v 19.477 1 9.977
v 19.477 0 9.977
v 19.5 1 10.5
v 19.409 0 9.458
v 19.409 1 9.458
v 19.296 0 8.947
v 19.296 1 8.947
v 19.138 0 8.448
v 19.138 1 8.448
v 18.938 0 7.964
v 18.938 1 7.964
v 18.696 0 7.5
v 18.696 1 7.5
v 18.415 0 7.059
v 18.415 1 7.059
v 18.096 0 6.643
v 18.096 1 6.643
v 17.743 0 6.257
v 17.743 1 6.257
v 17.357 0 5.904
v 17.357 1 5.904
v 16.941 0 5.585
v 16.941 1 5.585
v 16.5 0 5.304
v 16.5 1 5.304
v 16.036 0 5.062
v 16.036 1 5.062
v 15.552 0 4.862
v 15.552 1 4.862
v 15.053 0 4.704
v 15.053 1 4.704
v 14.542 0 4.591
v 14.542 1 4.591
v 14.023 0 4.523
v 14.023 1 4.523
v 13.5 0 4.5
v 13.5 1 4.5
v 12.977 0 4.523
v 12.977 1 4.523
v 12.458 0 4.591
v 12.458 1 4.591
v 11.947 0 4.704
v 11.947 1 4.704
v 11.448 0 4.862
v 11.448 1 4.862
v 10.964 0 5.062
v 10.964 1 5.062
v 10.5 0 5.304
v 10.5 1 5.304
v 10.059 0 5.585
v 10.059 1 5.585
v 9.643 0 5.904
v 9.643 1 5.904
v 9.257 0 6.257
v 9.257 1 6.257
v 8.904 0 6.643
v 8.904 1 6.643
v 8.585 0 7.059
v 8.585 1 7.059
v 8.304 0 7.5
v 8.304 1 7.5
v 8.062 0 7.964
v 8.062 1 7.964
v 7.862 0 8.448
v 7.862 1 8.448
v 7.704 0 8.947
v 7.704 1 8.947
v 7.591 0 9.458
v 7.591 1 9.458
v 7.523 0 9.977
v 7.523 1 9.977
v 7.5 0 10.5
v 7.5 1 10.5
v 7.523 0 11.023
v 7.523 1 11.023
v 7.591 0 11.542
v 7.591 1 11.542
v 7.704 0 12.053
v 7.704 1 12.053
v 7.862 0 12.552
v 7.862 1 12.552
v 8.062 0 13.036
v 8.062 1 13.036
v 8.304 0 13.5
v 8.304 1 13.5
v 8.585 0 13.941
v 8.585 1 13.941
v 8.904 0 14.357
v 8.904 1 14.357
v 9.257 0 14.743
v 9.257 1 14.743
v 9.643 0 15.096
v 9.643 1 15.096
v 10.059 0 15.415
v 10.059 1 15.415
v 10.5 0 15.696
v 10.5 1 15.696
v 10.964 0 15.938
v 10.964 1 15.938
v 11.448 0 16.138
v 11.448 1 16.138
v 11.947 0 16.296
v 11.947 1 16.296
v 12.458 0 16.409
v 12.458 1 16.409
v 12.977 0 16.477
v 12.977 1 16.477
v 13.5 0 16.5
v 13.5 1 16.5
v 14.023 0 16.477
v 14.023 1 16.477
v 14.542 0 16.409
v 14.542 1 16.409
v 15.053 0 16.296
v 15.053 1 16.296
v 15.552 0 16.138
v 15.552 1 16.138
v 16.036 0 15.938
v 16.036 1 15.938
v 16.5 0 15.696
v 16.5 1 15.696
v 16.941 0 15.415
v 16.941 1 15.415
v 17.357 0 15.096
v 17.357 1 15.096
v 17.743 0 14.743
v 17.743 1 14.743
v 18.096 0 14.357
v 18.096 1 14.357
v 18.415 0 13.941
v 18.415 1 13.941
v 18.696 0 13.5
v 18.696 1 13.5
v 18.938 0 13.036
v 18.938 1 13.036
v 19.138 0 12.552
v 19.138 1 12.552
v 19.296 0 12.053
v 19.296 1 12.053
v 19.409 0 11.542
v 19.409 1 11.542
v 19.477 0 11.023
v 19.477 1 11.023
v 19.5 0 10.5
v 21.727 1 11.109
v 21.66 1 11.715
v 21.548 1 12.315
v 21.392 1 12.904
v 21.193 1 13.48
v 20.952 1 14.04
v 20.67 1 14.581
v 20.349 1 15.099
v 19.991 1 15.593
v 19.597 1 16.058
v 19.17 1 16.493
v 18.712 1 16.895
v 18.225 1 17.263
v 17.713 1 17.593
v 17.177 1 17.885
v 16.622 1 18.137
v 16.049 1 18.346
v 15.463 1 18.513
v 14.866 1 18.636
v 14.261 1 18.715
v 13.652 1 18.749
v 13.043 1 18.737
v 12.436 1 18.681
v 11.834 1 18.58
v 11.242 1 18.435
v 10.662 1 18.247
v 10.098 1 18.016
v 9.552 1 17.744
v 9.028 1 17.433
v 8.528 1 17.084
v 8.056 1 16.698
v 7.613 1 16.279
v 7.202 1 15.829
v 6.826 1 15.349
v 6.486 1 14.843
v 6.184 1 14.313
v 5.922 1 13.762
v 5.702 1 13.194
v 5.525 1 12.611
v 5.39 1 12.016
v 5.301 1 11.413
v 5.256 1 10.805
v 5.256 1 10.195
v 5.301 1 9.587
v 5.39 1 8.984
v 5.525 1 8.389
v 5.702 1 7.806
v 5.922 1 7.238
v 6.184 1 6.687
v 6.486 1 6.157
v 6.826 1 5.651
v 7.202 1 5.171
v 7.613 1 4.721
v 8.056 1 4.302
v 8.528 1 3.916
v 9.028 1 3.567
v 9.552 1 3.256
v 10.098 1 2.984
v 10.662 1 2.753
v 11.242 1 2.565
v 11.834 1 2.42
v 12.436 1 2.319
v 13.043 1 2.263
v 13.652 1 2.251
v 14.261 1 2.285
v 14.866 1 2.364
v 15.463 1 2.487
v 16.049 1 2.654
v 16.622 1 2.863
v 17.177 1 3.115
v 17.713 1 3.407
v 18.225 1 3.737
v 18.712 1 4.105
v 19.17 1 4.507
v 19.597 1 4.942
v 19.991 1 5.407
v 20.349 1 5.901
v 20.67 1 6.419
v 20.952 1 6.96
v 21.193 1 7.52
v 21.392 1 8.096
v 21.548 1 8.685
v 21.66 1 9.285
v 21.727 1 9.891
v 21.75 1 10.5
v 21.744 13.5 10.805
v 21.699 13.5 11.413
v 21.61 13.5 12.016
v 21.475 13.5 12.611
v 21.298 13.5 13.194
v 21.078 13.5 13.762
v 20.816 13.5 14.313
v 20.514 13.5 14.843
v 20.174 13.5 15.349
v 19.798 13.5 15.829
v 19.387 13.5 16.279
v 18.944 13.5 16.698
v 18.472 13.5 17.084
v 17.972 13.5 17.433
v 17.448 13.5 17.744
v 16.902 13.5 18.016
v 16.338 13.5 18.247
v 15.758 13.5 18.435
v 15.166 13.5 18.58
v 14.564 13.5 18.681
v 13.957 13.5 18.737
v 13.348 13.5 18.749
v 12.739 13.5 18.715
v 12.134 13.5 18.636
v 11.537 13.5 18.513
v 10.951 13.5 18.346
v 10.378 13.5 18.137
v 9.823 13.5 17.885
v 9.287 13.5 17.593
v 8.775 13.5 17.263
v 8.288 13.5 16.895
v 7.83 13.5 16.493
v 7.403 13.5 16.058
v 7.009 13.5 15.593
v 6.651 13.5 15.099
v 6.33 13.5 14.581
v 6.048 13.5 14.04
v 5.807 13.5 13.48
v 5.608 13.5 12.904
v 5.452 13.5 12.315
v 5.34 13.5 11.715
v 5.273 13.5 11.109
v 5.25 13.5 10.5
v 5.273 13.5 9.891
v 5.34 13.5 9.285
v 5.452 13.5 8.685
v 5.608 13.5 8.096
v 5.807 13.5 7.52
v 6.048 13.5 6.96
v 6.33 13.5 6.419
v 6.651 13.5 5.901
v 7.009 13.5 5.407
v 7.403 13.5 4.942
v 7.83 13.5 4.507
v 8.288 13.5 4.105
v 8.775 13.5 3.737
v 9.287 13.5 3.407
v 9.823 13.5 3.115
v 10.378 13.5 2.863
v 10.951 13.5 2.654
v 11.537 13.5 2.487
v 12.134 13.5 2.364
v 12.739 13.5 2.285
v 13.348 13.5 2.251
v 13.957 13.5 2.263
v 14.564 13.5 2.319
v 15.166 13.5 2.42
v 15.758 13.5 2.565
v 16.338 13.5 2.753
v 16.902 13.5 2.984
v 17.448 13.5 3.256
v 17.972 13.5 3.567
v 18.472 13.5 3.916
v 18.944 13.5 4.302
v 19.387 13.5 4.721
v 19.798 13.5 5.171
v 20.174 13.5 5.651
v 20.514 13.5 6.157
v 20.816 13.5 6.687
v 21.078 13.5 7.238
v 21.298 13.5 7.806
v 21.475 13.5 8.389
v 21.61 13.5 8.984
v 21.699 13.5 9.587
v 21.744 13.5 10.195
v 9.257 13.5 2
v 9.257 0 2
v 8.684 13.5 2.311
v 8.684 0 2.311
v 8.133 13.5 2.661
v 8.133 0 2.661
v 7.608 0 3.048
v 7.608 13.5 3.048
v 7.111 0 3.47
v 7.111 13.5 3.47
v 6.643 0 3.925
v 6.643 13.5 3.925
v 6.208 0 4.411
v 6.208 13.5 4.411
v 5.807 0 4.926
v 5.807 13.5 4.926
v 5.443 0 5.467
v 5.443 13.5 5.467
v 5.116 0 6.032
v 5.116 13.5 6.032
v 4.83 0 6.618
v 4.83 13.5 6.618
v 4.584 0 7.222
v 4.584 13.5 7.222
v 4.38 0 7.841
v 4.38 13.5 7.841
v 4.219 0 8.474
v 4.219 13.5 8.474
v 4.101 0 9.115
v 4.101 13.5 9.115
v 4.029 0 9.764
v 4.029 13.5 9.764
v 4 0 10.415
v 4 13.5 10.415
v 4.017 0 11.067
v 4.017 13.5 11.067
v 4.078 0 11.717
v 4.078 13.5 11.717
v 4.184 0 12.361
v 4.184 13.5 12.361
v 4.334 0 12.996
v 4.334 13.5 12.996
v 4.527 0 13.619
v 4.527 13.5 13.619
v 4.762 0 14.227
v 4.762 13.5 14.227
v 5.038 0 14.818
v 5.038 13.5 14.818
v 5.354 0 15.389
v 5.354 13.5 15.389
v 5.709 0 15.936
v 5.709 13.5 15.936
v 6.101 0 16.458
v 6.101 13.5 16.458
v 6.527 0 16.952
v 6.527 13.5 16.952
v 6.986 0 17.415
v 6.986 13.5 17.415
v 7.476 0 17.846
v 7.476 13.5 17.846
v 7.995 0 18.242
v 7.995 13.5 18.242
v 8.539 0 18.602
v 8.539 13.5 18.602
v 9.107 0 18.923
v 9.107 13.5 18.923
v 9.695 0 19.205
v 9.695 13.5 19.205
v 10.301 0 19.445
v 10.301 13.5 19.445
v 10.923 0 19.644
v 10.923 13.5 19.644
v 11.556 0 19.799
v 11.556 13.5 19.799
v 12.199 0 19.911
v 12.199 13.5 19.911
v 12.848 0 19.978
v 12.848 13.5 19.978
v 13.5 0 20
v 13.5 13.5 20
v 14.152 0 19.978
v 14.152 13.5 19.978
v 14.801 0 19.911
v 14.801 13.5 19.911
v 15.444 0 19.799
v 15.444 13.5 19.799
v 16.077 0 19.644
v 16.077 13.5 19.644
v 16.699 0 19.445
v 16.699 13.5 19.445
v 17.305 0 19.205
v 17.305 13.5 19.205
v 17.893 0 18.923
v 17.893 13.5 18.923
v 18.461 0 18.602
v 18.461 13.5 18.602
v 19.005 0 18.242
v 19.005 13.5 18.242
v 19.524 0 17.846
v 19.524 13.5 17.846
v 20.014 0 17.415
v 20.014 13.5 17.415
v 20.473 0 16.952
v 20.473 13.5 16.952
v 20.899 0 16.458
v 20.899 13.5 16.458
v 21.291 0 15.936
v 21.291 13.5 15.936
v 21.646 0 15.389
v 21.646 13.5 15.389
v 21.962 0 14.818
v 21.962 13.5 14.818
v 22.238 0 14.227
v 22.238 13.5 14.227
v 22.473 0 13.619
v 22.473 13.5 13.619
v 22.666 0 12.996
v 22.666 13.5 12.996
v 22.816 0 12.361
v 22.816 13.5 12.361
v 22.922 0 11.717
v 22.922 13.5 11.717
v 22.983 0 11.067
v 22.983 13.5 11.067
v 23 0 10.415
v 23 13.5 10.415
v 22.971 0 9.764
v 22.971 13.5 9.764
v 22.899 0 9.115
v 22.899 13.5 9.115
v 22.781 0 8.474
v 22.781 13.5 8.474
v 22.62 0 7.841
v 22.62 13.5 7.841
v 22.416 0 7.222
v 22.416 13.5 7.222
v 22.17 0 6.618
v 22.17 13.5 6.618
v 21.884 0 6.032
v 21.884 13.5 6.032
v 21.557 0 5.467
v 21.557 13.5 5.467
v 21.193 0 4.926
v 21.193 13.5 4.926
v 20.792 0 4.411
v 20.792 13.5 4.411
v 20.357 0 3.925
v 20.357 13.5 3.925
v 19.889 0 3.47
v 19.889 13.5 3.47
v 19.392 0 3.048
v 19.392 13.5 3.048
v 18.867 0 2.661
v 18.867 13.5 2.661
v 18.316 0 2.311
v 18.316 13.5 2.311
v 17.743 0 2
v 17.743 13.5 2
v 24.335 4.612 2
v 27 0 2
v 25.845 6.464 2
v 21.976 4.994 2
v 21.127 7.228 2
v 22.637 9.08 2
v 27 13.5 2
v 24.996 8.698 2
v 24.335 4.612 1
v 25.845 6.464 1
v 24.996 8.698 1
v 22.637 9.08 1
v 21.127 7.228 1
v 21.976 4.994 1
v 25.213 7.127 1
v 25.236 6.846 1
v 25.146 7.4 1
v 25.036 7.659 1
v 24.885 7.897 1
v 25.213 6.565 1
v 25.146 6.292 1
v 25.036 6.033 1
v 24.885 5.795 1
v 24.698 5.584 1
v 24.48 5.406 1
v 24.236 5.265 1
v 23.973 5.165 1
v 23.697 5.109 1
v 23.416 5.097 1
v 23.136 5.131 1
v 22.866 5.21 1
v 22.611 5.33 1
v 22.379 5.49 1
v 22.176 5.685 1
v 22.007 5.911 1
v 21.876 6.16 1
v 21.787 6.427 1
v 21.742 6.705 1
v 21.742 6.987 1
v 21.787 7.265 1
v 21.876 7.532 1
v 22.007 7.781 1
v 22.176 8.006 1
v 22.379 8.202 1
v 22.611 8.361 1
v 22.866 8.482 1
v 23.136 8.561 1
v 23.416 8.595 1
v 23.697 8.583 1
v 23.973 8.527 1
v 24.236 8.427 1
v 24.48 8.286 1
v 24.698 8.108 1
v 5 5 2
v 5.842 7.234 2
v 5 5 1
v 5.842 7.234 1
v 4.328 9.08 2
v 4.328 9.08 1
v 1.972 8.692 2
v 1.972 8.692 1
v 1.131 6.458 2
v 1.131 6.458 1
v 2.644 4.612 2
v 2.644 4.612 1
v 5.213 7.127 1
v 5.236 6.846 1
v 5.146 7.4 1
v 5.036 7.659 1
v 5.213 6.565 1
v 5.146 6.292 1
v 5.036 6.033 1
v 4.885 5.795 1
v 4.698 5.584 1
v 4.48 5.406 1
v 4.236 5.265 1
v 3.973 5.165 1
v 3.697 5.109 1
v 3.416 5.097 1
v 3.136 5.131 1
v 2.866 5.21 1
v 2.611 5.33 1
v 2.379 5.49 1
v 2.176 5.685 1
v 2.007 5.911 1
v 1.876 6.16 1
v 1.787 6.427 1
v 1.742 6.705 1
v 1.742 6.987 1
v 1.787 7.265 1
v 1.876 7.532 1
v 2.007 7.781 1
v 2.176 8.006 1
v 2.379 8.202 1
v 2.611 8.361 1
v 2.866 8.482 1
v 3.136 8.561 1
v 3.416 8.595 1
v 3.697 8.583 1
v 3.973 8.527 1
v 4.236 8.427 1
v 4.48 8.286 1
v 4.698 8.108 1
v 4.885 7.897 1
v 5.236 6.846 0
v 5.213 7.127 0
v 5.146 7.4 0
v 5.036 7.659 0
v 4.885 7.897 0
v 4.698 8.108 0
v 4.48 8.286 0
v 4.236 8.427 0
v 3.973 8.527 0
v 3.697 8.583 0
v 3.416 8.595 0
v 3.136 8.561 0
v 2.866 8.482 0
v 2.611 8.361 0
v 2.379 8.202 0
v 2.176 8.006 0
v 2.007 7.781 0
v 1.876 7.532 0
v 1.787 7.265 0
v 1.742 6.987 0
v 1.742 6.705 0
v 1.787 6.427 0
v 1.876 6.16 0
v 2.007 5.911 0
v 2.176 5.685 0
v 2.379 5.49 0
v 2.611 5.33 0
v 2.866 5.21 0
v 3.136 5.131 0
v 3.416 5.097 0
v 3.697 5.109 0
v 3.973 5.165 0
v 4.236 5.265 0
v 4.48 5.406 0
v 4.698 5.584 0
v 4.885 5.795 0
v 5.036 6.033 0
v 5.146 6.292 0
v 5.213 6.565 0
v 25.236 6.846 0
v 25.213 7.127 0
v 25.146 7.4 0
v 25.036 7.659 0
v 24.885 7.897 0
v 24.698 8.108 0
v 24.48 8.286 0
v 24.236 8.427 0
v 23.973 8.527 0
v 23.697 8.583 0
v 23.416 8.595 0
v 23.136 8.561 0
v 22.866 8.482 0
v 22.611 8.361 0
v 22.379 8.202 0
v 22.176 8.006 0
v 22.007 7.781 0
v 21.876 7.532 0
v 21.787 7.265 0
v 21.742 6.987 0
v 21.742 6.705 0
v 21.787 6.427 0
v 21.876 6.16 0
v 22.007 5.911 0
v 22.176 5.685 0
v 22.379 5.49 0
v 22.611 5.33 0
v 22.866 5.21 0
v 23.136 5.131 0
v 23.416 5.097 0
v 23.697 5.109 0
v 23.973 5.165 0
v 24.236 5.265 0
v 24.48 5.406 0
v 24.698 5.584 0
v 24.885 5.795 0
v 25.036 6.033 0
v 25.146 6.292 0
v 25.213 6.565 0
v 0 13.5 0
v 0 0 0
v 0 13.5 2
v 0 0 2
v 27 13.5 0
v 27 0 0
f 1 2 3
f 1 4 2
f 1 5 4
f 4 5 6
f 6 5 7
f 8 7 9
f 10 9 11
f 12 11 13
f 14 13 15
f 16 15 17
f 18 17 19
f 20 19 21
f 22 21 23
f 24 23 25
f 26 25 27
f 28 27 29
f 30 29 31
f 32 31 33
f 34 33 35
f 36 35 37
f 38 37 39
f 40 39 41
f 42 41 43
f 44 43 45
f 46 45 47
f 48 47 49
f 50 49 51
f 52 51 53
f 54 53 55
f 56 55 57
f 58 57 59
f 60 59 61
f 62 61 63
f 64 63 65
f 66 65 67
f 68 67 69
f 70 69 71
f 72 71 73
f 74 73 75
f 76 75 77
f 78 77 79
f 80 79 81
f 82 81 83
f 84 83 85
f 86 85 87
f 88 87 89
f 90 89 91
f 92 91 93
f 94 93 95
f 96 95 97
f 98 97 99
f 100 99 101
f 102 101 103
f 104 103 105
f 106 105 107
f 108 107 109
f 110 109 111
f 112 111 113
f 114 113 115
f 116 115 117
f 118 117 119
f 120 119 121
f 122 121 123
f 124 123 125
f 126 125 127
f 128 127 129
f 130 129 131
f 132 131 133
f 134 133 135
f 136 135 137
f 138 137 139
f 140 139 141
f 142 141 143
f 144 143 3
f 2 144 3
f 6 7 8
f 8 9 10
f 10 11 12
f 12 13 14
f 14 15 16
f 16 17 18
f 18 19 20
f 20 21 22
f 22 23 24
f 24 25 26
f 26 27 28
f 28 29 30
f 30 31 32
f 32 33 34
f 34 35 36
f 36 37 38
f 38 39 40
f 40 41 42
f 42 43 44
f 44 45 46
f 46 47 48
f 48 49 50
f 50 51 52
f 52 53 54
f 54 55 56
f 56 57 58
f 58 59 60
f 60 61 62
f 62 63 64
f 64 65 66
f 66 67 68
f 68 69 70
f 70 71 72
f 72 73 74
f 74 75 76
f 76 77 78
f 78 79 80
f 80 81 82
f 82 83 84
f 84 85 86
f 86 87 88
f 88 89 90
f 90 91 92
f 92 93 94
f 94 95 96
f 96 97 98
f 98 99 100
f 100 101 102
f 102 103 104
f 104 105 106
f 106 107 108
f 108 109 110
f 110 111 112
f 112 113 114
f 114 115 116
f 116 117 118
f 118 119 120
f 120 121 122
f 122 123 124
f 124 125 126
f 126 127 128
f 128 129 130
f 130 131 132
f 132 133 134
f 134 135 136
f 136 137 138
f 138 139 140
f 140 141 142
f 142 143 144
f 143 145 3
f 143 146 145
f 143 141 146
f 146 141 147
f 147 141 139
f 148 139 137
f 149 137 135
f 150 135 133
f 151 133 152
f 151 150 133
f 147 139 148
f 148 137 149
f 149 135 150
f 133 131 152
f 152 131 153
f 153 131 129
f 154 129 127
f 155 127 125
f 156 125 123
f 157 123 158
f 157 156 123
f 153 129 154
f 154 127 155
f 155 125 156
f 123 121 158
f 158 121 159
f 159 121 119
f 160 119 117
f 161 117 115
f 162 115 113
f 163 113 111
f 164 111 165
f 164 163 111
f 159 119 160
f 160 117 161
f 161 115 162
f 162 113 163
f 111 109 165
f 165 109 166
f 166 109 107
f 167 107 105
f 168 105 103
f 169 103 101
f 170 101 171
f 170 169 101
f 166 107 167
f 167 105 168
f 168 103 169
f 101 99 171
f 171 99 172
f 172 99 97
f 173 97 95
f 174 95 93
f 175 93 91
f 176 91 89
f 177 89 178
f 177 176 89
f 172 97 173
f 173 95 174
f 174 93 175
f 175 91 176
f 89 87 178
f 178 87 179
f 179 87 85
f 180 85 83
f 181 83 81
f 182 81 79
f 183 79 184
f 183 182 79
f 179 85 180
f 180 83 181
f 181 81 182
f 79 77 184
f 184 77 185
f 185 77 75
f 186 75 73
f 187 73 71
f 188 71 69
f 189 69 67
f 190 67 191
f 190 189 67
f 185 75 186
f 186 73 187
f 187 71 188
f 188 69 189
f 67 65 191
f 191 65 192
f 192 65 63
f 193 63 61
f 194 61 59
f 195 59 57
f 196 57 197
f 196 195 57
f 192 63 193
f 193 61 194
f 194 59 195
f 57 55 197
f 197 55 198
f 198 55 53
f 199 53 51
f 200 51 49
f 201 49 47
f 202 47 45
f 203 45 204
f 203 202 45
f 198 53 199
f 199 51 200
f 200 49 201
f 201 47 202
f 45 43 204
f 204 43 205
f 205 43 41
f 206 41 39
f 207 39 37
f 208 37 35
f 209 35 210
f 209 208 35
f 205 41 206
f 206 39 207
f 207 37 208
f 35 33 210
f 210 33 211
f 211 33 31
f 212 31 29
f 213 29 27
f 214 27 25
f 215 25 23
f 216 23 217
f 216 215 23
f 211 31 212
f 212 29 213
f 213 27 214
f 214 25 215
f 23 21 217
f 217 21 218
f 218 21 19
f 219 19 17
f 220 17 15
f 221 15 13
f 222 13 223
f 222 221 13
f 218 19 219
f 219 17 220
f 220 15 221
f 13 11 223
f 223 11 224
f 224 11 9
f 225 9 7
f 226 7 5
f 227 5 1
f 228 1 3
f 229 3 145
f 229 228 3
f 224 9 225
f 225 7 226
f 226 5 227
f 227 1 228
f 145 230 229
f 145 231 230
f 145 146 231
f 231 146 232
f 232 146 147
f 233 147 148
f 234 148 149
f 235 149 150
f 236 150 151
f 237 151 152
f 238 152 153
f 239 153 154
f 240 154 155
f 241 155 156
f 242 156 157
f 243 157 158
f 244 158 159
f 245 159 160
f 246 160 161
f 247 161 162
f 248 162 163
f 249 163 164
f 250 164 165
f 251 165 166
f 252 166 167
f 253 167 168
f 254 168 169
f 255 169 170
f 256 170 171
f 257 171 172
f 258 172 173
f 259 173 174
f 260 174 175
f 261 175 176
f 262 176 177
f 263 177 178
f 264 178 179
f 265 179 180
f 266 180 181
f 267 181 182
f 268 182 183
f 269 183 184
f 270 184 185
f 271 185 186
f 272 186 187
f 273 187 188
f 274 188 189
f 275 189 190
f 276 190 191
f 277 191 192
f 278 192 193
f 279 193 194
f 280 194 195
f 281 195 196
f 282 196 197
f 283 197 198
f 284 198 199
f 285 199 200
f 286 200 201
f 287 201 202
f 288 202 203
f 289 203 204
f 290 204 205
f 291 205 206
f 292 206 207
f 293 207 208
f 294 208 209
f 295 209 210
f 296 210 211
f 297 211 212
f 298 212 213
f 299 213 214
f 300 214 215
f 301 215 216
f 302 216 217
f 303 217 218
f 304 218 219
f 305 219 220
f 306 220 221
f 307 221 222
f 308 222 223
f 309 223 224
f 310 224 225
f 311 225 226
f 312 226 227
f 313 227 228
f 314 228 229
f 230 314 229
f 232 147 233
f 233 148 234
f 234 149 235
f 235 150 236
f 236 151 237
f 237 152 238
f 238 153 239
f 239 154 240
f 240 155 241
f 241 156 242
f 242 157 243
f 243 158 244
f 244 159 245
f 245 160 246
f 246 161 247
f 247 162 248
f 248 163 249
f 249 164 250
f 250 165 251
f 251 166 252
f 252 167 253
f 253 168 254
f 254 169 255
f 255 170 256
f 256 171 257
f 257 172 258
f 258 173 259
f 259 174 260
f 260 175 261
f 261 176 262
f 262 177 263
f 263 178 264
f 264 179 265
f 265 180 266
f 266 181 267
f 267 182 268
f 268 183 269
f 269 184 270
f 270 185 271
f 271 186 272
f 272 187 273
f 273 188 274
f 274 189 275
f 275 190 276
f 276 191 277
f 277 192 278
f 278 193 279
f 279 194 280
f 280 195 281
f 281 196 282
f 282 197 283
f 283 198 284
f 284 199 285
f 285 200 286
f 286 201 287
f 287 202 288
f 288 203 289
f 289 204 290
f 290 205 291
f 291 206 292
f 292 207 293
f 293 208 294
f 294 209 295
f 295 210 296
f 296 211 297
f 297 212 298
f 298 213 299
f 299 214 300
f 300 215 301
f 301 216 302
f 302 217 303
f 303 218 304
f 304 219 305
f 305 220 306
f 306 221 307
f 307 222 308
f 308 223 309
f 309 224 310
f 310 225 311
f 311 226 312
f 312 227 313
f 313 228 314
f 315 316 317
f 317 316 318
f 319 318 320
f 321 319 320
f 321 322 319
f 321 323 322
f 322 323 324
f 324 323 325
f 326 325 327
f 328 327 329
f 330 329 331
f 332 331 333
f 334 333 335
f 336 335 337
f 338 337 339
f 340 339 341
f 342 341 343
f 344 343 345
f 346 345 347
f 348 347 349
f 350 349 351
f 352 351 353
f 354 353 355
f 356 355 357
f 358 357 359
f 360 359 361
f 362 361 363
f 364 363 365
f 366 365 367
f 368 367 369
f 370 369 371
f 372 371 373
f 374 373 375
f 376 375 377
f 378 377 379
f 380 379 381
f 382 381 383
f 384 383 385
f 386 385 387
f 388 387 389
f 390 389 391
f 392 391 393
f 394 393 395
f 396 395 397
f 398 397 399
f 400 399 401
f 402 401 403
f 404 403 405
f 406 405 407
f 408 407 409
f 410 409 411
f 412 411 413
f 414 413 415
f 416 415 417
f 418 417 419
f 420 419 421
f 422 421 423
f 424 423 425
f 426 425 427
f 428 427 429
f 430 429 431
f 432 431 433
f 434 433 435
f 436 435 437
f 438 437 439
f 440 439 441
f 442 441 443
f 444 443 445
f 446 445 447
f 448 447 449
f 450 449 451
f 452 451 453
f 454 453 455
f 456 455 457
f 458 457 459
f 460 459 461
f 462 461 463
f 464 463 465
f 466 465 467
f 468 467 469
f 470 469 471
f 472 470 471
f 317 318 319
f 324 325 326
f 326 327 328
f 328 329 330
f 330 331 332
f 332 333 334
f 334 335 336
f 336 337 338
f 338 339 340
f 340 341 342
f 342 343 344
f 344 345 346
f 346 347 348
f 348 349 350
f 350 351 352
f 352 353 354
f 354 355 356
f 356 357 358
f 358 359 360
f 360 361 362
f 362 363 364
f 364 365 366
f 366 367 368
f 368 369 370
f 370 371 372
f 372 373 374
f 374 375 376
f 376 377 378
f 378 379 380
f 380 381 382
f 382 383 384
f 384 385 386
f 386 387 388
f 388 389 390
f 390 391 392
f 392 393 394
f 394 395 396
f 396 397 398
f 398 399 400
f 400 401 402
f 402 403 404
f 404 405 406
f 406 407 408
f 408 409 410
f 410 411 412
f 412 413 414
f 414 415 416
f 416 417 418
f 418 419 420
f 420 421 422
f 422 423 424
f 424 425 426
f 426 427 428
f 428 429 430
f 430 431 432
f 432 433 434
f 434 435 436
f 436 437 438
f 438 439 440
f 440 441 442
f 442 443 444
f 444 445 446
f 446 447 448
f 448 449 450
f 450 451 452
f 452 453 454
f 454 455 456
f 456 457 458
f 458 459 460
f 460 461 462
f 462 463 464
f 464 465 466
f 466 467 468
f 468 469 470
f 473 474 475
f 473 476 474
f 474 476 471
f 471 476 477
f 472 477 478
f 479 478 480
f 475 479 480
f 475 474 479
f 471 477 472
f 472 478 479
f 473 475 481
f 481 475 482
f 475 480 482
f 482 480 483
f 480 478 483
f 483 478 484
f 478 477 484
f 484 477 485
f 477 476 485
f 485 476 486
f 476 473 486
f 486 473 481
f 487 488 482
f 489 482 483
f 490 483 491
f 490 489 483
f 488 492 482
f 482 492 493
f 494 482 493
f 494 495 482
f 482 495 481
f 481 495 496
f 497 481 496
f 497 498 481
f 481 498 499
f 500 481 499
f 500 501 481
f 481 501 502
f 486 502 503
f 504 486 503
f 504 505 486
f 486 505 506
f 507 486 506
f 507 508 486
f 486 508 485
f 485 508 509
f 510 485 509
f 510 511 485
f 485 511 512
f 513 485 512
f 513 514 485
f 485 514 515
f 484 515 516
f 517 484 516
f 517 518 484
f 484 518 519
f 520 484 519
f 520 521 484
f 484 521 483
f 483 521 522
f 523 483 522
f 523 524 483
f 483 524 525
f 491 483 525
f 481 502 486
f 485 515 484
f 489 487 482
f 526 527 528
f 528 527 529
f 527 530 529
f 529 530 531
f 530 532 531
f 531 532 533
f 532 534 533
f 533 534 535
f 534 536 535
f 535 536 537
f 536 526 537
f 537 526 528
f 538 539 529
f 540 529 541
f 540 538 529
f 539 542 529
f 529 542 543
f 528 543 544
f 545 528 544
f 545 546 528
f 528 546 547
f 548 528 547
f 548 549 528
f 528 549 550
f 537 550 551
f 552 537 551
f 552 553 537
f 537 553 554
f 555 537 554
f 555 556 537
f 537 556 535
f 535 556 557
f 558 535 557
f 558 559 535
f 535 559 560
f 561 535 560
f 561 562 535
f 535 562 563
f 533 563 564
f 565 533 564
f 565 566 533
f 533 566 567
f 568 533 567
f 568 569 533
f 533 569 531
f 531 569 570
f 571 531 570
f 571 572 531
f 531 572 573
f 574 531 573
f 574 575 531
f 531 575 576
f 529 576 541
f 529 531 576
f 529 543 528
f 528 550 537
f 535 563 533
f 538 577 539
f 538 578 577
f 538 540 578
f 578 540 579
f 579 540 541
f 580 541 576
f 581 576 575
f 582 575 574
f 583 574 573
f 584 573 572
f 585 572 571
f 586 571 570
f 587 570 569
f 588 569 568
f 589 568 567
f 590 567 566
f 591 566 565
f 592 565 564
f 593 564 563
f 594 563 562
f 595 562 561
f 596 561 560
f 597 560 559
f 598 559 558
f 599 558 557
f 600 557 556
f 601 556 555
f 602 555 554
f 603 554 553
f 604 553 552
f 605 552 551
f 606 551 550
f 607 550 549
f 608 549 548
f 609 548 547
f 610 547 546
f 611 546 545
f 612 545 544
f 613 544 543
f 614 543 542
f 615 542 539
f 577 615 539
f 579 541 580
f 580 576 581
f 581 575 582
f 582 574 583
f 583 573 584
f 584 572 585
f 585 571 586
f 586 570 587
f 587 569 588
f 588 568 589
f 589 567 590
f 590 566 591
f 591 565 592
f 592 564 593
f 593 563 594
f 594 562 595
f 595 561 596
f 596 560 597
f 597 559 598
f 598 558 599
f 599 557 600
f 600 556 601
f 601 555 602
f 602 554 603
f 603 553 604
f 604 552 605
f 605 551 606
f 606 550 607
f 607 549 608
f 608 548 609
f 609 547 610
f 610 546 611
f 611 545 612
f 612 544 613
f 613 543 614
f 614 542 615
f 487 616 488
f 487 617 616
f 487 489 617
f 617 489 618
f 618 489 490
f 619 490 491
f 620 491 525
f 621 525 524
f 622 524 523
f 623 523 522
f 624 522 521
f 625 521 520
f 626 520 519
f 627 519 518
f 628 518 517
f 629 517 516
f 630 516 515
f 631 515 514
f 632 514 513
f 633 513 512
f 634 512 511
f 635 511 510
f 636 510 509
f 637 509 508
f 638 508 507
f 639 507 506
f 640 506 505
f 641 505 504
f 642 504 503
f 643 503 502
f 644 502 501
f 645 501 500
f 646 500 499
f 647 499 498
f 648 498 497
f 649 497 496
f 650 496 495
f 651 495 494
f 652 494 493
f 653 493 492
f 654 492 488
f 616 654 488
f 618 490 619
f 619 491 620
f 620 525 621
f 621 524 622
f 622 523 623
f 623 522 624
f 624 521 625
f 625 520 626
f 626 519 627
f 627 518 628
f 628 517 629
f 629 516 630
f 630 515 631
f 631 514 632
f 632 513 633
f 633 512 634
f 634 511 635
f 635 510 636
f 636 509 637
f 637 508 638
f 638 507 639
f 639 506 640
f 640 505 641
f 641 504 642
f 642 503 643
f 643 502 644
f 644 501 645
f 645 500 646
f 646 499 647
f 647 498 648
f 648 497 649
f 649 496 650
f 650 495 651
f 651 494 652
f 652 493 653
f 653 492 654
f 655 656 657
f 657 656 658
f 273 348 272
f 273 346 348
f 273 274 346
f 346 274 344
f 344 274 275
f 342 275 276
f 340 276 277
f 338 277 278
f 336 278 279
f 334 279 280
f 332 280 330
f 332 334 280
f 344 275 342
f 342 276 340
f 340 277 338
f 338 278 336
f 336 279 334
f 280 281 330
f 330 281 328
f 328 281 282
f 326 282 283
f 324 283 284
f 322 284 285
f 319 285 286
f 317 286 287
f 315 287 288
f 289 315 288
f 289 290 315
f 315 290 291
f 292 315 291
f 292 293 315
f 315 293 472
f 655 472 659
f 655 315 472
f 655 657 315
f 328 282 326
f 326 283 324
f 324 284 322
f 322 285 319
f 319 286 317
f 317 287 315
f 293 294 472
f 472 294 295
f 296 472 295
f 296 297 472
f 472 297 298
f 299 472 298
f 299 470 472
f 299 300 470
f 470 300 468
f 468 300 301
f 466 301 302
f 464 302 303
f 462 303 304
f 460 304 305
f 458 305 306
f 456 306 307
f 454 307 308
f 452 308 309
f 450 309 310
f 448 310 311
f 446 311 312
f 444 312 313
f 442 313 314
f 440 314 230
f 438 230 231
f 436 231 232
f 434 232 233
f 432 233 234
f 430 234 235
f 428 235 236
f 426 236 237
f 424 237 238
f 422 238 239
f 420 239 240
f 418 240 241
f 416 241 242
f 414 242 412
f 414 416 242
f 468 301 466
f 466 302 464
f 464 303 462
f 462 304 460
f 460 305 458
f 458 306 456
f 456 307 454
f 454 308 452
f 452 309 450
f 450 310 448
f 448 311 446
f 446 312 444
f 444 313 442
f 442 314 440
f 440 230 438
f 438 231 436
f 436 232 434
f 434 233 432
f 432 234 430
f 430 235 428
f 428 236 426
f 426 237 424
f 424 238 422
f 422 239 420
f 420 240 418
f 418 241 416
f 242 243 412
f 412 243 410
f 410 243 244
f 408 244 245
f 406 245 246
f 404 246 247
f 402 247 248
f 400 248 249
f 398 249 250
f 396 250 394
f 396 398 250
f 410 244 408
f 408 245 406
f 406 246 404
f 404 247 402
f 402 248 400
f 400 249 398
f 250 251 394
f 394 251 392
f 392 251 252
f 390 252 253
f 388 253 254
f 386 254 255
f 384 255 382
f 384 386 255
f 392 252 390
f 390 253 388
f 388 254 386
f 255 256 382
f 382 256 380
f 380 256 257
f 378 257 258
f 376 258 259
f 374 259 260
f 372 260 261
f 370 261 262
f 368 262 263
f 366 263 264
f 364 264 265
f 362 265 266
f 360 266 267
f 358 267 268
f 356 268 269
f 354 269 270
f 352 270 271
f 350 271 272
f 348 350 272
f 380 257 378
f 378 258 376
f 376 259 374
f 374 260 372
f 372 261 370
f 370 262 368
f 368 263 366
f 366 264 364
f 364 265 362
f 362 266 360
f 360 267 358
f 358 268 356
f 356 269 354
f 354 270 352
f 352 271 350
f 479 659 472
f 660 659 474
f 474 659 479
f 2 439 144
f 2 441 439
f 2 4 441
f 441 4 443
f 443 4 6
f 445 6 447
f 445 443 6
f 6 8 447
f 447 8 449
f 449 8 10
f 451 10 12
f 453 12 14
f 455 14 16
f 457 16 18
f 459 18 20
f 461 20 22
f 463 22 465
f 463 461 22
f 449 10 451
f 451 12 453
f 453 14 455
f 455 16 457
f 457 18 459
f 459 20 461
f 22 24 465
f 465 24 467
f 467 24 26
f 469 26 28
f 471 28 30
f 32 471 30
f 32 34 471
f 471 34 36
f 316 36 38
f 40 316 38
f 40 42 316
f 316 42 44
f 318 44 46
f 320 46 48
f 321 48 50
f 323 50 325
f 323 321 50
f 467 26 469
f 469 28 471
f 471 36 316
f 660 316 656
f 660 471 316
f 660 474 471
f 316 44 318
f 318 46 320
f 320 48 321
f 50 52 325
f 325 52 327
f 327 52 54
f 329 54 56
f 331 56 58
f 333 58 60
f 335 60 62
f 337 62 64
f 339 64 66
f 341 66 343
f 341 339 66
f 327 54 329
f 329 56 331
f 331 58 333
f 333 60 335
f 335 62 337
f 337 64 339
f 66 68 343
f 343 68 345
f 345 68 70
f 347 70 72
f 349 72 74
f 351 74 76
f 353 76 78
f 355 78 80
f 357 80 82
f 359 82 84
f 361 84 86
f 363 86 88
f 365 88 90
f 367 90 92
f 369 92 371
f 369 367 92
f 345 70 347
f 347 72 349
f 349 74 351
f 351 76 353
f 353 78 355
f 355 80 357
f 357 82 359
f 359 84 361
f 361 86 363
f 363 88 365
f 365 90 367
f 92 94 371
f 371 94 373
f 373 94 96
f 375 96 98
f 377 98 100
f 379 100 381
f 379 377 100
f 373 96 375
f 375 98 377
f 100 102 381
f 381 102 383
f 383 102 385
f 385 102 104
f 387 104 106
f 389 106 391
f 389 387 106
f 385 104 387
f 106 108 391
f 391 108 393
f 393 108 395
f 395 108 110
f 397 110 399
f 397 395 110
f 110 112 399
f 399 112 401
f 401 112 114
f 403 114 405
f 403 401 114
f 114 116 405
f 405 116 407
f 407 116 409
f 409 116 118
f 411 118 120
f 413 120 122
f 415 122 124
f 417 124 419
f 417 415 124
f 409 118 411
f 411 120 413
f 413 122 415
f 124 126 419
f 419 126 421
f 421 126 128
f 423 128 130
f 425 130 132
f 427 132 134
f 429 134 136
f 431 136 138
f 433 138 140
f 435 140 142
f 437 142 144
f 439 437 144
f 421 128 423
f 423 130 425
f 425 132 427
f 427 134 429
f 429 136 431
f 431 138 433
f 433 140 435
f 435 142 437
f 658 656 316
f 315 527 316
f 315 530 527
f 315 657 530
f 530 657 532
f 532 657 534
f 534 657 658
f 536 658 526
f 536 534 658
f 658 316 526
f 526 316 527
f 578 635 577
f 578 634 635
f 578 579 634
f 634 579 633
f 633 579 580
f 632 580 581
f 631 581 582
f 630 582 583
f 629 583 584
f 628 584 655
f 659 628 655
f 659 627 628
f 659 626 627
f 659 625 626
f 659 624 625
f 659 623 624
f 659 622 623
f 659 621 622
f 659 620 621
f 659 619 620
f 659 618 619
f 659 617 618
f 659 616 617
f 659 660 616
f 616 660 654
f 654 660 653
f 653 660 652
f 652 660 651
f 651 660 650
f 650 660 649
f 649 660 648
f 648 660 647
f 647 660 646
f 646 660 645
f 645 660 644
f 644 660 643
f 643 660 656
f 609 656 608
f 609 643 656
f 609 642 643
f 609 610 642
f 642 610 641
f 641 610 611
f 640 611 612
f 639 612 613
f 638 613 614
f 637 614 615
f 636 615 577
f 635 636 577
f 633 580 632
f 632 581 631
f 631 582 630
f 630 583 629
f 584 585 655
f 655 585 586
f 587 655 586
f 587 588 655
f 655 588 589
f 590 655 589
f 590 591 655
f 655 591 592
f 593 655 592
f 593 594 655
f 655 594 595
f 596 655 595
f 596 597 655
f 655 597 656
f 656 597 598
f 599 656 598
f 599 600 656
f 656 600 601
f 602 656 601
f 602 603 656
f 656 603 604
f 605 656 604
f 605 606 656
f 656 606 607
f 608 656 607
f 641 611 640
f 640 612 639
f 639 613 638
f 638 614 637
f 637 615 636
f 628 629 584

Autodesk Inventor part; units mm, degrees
ref_plane "YZ Plane" through (0, 0, 0) normal (1, 0, 0) x (0, 1, 0)
ref_plane "XZ Plane" through (0, 0, 0) normal (0, 1, 0) x (-1, 0, 0)
ref_plane "XY Plane" through (0, 0, 0) normal (0, 0, 1) x (1, 0, 0)
sketch "Sketch1" plane through (0, 0, 0) normal (0, 0, 1) x (1, 0, 0)
  line L0 (0, 0) -> (27, 0)
  line L1 (27, 0) -> (27, 13.5)
  line L2 (27, 13.5) -> (0, 13.5)
  line L3 (0, 13.5) -> (0, 0)
  line L4 (13.4862, 18.9079) -> (13.4862, -5.216) construction
  line L5 (13.4862, -5.216) -> (23.4862, -5.216) construction
  line L6 (23.4862, -5.216) -> (23.4862, 20) construction
  line L7 (23.4862, 20) -> (3.4862, 20) construction
  line L8 (3.4862, 20) -> (3.4862, -7.3205) construction
  line L9 (14, 12) -> (14, 9) construction
  line L10 (13.5, 13.5) -> (13.5, 8.6504) construction
  line L11 (13.5, 8.6504) -> (13.5, 6.3397) construction
  line L12 (-7, 6.846) -> (36, 6.846) construction
  point P0 (3.4862, 6.846)
  point P1 (23.4862, 6.846)
  dimension "d0" = 27
  dimension "d1" = 13.5
  dimension "d2" = 10
  dimension "d3" = 20
extrude "Extrusion1" add sketch "Sketch1" along normal blind 2
hole "Hole1" at (3.4862, 6.846, 0) at (23.4862, 6.846, 0) direction (0, 0, 1) diameter 3.5 end through all
sketch "Sketch2" plane through (0, 0, 2) normal (0, 0, 1) x (1, 0, 0)
  circle A0 centre (3.4862, 6.846) radius 1.75 projected
  circle A1 centre (23.4862, 6.846) radius 1.75 projected
  line L0 (5, 5) -> (2.6444, 4.6119)
  line L1 (2.6444, 4.6119) -> (1.1306, 6.4579)
  line L2 (1.1306, 6.4579) -> (1.9723, 8.6919)
  line L3 (1.9723, 8.6919) -> (4.3279, 9.08)
  line L4 (4.3279, 9.08) -> (5.8417, 7.234)
  line L5 (5.8417, 7.234) -> (5, 5)
  line L6 (24.3353, 4.6119) -> (21.976, 4.9936)
  line L7 (21.976, 4.9936) -> (21.1269, 7.2276)
  line L8 (21.1269, 7.2276) -> (22.637, 9.08)
  line L9 (22.637, 9.08) -> (24.9963, 8.6983)
  line L10 (24.9963, 8.6983) -> (25.8454, 6.4643)
  line L11 (25.8454, 6.4643) -> (24.3353, 4.6119)
extrude "Extrusion2" cut sketch "Sketch2" against normal blind 1 contours L0 L1 L2 L3 L4 L5
extrude "Extrusion3" cut sketch "Sketch2" against normal blind 1 contours L6 L7 L8 L9 L10 L11
sketch "Sketch4" plane through (0, 0, 0) normal (0, 1, 0) x (-1, 0, 0)
  line L0 (-6.7373, -10.6634) -> (-6.7373, -4.6634) construction
  line L1 (-27, -7.5) -> (0, -7.5) construction
  line L2 (0, -7.5) -> (-27, -7.5) construction
  line L3 (-13.5, -7.5) -> (-13.5, 2) construction
  arc A0 (-9.2574, 2) -> (-17.7426, 2) centre (-13.5, 10.5) ccw
  circle A1 centre (-13.5, 10.5) radius 8.25
  line L4 (-9.2574, 2) -> (-17.7426, 2)
  point P0 (0, 0)
  dimension "d17" = 9.5
  dimension "d18" = 19
  dimension "d19" = 16.5
extrude "Extrusion4" add sketch "Sketch4" along normal blind 13.5
sketch "Sketch5" plane through (0, 0, 0) normal (0, -1, 0) x (1, 0, 0)
  circle A0 centre (13.5, 10.5) radius 8.25 projected
  circle A1 centre (13.5, 10.5) radius 6
  circle A2 centre (13.5, 10.5) radius 8.25
  dimension "d22" = 12
extrude "Extrusion5" add sketch "Sketch5" against normal blind 1
properties part number "bart xl rjmp 2 part bearing holder v6"
